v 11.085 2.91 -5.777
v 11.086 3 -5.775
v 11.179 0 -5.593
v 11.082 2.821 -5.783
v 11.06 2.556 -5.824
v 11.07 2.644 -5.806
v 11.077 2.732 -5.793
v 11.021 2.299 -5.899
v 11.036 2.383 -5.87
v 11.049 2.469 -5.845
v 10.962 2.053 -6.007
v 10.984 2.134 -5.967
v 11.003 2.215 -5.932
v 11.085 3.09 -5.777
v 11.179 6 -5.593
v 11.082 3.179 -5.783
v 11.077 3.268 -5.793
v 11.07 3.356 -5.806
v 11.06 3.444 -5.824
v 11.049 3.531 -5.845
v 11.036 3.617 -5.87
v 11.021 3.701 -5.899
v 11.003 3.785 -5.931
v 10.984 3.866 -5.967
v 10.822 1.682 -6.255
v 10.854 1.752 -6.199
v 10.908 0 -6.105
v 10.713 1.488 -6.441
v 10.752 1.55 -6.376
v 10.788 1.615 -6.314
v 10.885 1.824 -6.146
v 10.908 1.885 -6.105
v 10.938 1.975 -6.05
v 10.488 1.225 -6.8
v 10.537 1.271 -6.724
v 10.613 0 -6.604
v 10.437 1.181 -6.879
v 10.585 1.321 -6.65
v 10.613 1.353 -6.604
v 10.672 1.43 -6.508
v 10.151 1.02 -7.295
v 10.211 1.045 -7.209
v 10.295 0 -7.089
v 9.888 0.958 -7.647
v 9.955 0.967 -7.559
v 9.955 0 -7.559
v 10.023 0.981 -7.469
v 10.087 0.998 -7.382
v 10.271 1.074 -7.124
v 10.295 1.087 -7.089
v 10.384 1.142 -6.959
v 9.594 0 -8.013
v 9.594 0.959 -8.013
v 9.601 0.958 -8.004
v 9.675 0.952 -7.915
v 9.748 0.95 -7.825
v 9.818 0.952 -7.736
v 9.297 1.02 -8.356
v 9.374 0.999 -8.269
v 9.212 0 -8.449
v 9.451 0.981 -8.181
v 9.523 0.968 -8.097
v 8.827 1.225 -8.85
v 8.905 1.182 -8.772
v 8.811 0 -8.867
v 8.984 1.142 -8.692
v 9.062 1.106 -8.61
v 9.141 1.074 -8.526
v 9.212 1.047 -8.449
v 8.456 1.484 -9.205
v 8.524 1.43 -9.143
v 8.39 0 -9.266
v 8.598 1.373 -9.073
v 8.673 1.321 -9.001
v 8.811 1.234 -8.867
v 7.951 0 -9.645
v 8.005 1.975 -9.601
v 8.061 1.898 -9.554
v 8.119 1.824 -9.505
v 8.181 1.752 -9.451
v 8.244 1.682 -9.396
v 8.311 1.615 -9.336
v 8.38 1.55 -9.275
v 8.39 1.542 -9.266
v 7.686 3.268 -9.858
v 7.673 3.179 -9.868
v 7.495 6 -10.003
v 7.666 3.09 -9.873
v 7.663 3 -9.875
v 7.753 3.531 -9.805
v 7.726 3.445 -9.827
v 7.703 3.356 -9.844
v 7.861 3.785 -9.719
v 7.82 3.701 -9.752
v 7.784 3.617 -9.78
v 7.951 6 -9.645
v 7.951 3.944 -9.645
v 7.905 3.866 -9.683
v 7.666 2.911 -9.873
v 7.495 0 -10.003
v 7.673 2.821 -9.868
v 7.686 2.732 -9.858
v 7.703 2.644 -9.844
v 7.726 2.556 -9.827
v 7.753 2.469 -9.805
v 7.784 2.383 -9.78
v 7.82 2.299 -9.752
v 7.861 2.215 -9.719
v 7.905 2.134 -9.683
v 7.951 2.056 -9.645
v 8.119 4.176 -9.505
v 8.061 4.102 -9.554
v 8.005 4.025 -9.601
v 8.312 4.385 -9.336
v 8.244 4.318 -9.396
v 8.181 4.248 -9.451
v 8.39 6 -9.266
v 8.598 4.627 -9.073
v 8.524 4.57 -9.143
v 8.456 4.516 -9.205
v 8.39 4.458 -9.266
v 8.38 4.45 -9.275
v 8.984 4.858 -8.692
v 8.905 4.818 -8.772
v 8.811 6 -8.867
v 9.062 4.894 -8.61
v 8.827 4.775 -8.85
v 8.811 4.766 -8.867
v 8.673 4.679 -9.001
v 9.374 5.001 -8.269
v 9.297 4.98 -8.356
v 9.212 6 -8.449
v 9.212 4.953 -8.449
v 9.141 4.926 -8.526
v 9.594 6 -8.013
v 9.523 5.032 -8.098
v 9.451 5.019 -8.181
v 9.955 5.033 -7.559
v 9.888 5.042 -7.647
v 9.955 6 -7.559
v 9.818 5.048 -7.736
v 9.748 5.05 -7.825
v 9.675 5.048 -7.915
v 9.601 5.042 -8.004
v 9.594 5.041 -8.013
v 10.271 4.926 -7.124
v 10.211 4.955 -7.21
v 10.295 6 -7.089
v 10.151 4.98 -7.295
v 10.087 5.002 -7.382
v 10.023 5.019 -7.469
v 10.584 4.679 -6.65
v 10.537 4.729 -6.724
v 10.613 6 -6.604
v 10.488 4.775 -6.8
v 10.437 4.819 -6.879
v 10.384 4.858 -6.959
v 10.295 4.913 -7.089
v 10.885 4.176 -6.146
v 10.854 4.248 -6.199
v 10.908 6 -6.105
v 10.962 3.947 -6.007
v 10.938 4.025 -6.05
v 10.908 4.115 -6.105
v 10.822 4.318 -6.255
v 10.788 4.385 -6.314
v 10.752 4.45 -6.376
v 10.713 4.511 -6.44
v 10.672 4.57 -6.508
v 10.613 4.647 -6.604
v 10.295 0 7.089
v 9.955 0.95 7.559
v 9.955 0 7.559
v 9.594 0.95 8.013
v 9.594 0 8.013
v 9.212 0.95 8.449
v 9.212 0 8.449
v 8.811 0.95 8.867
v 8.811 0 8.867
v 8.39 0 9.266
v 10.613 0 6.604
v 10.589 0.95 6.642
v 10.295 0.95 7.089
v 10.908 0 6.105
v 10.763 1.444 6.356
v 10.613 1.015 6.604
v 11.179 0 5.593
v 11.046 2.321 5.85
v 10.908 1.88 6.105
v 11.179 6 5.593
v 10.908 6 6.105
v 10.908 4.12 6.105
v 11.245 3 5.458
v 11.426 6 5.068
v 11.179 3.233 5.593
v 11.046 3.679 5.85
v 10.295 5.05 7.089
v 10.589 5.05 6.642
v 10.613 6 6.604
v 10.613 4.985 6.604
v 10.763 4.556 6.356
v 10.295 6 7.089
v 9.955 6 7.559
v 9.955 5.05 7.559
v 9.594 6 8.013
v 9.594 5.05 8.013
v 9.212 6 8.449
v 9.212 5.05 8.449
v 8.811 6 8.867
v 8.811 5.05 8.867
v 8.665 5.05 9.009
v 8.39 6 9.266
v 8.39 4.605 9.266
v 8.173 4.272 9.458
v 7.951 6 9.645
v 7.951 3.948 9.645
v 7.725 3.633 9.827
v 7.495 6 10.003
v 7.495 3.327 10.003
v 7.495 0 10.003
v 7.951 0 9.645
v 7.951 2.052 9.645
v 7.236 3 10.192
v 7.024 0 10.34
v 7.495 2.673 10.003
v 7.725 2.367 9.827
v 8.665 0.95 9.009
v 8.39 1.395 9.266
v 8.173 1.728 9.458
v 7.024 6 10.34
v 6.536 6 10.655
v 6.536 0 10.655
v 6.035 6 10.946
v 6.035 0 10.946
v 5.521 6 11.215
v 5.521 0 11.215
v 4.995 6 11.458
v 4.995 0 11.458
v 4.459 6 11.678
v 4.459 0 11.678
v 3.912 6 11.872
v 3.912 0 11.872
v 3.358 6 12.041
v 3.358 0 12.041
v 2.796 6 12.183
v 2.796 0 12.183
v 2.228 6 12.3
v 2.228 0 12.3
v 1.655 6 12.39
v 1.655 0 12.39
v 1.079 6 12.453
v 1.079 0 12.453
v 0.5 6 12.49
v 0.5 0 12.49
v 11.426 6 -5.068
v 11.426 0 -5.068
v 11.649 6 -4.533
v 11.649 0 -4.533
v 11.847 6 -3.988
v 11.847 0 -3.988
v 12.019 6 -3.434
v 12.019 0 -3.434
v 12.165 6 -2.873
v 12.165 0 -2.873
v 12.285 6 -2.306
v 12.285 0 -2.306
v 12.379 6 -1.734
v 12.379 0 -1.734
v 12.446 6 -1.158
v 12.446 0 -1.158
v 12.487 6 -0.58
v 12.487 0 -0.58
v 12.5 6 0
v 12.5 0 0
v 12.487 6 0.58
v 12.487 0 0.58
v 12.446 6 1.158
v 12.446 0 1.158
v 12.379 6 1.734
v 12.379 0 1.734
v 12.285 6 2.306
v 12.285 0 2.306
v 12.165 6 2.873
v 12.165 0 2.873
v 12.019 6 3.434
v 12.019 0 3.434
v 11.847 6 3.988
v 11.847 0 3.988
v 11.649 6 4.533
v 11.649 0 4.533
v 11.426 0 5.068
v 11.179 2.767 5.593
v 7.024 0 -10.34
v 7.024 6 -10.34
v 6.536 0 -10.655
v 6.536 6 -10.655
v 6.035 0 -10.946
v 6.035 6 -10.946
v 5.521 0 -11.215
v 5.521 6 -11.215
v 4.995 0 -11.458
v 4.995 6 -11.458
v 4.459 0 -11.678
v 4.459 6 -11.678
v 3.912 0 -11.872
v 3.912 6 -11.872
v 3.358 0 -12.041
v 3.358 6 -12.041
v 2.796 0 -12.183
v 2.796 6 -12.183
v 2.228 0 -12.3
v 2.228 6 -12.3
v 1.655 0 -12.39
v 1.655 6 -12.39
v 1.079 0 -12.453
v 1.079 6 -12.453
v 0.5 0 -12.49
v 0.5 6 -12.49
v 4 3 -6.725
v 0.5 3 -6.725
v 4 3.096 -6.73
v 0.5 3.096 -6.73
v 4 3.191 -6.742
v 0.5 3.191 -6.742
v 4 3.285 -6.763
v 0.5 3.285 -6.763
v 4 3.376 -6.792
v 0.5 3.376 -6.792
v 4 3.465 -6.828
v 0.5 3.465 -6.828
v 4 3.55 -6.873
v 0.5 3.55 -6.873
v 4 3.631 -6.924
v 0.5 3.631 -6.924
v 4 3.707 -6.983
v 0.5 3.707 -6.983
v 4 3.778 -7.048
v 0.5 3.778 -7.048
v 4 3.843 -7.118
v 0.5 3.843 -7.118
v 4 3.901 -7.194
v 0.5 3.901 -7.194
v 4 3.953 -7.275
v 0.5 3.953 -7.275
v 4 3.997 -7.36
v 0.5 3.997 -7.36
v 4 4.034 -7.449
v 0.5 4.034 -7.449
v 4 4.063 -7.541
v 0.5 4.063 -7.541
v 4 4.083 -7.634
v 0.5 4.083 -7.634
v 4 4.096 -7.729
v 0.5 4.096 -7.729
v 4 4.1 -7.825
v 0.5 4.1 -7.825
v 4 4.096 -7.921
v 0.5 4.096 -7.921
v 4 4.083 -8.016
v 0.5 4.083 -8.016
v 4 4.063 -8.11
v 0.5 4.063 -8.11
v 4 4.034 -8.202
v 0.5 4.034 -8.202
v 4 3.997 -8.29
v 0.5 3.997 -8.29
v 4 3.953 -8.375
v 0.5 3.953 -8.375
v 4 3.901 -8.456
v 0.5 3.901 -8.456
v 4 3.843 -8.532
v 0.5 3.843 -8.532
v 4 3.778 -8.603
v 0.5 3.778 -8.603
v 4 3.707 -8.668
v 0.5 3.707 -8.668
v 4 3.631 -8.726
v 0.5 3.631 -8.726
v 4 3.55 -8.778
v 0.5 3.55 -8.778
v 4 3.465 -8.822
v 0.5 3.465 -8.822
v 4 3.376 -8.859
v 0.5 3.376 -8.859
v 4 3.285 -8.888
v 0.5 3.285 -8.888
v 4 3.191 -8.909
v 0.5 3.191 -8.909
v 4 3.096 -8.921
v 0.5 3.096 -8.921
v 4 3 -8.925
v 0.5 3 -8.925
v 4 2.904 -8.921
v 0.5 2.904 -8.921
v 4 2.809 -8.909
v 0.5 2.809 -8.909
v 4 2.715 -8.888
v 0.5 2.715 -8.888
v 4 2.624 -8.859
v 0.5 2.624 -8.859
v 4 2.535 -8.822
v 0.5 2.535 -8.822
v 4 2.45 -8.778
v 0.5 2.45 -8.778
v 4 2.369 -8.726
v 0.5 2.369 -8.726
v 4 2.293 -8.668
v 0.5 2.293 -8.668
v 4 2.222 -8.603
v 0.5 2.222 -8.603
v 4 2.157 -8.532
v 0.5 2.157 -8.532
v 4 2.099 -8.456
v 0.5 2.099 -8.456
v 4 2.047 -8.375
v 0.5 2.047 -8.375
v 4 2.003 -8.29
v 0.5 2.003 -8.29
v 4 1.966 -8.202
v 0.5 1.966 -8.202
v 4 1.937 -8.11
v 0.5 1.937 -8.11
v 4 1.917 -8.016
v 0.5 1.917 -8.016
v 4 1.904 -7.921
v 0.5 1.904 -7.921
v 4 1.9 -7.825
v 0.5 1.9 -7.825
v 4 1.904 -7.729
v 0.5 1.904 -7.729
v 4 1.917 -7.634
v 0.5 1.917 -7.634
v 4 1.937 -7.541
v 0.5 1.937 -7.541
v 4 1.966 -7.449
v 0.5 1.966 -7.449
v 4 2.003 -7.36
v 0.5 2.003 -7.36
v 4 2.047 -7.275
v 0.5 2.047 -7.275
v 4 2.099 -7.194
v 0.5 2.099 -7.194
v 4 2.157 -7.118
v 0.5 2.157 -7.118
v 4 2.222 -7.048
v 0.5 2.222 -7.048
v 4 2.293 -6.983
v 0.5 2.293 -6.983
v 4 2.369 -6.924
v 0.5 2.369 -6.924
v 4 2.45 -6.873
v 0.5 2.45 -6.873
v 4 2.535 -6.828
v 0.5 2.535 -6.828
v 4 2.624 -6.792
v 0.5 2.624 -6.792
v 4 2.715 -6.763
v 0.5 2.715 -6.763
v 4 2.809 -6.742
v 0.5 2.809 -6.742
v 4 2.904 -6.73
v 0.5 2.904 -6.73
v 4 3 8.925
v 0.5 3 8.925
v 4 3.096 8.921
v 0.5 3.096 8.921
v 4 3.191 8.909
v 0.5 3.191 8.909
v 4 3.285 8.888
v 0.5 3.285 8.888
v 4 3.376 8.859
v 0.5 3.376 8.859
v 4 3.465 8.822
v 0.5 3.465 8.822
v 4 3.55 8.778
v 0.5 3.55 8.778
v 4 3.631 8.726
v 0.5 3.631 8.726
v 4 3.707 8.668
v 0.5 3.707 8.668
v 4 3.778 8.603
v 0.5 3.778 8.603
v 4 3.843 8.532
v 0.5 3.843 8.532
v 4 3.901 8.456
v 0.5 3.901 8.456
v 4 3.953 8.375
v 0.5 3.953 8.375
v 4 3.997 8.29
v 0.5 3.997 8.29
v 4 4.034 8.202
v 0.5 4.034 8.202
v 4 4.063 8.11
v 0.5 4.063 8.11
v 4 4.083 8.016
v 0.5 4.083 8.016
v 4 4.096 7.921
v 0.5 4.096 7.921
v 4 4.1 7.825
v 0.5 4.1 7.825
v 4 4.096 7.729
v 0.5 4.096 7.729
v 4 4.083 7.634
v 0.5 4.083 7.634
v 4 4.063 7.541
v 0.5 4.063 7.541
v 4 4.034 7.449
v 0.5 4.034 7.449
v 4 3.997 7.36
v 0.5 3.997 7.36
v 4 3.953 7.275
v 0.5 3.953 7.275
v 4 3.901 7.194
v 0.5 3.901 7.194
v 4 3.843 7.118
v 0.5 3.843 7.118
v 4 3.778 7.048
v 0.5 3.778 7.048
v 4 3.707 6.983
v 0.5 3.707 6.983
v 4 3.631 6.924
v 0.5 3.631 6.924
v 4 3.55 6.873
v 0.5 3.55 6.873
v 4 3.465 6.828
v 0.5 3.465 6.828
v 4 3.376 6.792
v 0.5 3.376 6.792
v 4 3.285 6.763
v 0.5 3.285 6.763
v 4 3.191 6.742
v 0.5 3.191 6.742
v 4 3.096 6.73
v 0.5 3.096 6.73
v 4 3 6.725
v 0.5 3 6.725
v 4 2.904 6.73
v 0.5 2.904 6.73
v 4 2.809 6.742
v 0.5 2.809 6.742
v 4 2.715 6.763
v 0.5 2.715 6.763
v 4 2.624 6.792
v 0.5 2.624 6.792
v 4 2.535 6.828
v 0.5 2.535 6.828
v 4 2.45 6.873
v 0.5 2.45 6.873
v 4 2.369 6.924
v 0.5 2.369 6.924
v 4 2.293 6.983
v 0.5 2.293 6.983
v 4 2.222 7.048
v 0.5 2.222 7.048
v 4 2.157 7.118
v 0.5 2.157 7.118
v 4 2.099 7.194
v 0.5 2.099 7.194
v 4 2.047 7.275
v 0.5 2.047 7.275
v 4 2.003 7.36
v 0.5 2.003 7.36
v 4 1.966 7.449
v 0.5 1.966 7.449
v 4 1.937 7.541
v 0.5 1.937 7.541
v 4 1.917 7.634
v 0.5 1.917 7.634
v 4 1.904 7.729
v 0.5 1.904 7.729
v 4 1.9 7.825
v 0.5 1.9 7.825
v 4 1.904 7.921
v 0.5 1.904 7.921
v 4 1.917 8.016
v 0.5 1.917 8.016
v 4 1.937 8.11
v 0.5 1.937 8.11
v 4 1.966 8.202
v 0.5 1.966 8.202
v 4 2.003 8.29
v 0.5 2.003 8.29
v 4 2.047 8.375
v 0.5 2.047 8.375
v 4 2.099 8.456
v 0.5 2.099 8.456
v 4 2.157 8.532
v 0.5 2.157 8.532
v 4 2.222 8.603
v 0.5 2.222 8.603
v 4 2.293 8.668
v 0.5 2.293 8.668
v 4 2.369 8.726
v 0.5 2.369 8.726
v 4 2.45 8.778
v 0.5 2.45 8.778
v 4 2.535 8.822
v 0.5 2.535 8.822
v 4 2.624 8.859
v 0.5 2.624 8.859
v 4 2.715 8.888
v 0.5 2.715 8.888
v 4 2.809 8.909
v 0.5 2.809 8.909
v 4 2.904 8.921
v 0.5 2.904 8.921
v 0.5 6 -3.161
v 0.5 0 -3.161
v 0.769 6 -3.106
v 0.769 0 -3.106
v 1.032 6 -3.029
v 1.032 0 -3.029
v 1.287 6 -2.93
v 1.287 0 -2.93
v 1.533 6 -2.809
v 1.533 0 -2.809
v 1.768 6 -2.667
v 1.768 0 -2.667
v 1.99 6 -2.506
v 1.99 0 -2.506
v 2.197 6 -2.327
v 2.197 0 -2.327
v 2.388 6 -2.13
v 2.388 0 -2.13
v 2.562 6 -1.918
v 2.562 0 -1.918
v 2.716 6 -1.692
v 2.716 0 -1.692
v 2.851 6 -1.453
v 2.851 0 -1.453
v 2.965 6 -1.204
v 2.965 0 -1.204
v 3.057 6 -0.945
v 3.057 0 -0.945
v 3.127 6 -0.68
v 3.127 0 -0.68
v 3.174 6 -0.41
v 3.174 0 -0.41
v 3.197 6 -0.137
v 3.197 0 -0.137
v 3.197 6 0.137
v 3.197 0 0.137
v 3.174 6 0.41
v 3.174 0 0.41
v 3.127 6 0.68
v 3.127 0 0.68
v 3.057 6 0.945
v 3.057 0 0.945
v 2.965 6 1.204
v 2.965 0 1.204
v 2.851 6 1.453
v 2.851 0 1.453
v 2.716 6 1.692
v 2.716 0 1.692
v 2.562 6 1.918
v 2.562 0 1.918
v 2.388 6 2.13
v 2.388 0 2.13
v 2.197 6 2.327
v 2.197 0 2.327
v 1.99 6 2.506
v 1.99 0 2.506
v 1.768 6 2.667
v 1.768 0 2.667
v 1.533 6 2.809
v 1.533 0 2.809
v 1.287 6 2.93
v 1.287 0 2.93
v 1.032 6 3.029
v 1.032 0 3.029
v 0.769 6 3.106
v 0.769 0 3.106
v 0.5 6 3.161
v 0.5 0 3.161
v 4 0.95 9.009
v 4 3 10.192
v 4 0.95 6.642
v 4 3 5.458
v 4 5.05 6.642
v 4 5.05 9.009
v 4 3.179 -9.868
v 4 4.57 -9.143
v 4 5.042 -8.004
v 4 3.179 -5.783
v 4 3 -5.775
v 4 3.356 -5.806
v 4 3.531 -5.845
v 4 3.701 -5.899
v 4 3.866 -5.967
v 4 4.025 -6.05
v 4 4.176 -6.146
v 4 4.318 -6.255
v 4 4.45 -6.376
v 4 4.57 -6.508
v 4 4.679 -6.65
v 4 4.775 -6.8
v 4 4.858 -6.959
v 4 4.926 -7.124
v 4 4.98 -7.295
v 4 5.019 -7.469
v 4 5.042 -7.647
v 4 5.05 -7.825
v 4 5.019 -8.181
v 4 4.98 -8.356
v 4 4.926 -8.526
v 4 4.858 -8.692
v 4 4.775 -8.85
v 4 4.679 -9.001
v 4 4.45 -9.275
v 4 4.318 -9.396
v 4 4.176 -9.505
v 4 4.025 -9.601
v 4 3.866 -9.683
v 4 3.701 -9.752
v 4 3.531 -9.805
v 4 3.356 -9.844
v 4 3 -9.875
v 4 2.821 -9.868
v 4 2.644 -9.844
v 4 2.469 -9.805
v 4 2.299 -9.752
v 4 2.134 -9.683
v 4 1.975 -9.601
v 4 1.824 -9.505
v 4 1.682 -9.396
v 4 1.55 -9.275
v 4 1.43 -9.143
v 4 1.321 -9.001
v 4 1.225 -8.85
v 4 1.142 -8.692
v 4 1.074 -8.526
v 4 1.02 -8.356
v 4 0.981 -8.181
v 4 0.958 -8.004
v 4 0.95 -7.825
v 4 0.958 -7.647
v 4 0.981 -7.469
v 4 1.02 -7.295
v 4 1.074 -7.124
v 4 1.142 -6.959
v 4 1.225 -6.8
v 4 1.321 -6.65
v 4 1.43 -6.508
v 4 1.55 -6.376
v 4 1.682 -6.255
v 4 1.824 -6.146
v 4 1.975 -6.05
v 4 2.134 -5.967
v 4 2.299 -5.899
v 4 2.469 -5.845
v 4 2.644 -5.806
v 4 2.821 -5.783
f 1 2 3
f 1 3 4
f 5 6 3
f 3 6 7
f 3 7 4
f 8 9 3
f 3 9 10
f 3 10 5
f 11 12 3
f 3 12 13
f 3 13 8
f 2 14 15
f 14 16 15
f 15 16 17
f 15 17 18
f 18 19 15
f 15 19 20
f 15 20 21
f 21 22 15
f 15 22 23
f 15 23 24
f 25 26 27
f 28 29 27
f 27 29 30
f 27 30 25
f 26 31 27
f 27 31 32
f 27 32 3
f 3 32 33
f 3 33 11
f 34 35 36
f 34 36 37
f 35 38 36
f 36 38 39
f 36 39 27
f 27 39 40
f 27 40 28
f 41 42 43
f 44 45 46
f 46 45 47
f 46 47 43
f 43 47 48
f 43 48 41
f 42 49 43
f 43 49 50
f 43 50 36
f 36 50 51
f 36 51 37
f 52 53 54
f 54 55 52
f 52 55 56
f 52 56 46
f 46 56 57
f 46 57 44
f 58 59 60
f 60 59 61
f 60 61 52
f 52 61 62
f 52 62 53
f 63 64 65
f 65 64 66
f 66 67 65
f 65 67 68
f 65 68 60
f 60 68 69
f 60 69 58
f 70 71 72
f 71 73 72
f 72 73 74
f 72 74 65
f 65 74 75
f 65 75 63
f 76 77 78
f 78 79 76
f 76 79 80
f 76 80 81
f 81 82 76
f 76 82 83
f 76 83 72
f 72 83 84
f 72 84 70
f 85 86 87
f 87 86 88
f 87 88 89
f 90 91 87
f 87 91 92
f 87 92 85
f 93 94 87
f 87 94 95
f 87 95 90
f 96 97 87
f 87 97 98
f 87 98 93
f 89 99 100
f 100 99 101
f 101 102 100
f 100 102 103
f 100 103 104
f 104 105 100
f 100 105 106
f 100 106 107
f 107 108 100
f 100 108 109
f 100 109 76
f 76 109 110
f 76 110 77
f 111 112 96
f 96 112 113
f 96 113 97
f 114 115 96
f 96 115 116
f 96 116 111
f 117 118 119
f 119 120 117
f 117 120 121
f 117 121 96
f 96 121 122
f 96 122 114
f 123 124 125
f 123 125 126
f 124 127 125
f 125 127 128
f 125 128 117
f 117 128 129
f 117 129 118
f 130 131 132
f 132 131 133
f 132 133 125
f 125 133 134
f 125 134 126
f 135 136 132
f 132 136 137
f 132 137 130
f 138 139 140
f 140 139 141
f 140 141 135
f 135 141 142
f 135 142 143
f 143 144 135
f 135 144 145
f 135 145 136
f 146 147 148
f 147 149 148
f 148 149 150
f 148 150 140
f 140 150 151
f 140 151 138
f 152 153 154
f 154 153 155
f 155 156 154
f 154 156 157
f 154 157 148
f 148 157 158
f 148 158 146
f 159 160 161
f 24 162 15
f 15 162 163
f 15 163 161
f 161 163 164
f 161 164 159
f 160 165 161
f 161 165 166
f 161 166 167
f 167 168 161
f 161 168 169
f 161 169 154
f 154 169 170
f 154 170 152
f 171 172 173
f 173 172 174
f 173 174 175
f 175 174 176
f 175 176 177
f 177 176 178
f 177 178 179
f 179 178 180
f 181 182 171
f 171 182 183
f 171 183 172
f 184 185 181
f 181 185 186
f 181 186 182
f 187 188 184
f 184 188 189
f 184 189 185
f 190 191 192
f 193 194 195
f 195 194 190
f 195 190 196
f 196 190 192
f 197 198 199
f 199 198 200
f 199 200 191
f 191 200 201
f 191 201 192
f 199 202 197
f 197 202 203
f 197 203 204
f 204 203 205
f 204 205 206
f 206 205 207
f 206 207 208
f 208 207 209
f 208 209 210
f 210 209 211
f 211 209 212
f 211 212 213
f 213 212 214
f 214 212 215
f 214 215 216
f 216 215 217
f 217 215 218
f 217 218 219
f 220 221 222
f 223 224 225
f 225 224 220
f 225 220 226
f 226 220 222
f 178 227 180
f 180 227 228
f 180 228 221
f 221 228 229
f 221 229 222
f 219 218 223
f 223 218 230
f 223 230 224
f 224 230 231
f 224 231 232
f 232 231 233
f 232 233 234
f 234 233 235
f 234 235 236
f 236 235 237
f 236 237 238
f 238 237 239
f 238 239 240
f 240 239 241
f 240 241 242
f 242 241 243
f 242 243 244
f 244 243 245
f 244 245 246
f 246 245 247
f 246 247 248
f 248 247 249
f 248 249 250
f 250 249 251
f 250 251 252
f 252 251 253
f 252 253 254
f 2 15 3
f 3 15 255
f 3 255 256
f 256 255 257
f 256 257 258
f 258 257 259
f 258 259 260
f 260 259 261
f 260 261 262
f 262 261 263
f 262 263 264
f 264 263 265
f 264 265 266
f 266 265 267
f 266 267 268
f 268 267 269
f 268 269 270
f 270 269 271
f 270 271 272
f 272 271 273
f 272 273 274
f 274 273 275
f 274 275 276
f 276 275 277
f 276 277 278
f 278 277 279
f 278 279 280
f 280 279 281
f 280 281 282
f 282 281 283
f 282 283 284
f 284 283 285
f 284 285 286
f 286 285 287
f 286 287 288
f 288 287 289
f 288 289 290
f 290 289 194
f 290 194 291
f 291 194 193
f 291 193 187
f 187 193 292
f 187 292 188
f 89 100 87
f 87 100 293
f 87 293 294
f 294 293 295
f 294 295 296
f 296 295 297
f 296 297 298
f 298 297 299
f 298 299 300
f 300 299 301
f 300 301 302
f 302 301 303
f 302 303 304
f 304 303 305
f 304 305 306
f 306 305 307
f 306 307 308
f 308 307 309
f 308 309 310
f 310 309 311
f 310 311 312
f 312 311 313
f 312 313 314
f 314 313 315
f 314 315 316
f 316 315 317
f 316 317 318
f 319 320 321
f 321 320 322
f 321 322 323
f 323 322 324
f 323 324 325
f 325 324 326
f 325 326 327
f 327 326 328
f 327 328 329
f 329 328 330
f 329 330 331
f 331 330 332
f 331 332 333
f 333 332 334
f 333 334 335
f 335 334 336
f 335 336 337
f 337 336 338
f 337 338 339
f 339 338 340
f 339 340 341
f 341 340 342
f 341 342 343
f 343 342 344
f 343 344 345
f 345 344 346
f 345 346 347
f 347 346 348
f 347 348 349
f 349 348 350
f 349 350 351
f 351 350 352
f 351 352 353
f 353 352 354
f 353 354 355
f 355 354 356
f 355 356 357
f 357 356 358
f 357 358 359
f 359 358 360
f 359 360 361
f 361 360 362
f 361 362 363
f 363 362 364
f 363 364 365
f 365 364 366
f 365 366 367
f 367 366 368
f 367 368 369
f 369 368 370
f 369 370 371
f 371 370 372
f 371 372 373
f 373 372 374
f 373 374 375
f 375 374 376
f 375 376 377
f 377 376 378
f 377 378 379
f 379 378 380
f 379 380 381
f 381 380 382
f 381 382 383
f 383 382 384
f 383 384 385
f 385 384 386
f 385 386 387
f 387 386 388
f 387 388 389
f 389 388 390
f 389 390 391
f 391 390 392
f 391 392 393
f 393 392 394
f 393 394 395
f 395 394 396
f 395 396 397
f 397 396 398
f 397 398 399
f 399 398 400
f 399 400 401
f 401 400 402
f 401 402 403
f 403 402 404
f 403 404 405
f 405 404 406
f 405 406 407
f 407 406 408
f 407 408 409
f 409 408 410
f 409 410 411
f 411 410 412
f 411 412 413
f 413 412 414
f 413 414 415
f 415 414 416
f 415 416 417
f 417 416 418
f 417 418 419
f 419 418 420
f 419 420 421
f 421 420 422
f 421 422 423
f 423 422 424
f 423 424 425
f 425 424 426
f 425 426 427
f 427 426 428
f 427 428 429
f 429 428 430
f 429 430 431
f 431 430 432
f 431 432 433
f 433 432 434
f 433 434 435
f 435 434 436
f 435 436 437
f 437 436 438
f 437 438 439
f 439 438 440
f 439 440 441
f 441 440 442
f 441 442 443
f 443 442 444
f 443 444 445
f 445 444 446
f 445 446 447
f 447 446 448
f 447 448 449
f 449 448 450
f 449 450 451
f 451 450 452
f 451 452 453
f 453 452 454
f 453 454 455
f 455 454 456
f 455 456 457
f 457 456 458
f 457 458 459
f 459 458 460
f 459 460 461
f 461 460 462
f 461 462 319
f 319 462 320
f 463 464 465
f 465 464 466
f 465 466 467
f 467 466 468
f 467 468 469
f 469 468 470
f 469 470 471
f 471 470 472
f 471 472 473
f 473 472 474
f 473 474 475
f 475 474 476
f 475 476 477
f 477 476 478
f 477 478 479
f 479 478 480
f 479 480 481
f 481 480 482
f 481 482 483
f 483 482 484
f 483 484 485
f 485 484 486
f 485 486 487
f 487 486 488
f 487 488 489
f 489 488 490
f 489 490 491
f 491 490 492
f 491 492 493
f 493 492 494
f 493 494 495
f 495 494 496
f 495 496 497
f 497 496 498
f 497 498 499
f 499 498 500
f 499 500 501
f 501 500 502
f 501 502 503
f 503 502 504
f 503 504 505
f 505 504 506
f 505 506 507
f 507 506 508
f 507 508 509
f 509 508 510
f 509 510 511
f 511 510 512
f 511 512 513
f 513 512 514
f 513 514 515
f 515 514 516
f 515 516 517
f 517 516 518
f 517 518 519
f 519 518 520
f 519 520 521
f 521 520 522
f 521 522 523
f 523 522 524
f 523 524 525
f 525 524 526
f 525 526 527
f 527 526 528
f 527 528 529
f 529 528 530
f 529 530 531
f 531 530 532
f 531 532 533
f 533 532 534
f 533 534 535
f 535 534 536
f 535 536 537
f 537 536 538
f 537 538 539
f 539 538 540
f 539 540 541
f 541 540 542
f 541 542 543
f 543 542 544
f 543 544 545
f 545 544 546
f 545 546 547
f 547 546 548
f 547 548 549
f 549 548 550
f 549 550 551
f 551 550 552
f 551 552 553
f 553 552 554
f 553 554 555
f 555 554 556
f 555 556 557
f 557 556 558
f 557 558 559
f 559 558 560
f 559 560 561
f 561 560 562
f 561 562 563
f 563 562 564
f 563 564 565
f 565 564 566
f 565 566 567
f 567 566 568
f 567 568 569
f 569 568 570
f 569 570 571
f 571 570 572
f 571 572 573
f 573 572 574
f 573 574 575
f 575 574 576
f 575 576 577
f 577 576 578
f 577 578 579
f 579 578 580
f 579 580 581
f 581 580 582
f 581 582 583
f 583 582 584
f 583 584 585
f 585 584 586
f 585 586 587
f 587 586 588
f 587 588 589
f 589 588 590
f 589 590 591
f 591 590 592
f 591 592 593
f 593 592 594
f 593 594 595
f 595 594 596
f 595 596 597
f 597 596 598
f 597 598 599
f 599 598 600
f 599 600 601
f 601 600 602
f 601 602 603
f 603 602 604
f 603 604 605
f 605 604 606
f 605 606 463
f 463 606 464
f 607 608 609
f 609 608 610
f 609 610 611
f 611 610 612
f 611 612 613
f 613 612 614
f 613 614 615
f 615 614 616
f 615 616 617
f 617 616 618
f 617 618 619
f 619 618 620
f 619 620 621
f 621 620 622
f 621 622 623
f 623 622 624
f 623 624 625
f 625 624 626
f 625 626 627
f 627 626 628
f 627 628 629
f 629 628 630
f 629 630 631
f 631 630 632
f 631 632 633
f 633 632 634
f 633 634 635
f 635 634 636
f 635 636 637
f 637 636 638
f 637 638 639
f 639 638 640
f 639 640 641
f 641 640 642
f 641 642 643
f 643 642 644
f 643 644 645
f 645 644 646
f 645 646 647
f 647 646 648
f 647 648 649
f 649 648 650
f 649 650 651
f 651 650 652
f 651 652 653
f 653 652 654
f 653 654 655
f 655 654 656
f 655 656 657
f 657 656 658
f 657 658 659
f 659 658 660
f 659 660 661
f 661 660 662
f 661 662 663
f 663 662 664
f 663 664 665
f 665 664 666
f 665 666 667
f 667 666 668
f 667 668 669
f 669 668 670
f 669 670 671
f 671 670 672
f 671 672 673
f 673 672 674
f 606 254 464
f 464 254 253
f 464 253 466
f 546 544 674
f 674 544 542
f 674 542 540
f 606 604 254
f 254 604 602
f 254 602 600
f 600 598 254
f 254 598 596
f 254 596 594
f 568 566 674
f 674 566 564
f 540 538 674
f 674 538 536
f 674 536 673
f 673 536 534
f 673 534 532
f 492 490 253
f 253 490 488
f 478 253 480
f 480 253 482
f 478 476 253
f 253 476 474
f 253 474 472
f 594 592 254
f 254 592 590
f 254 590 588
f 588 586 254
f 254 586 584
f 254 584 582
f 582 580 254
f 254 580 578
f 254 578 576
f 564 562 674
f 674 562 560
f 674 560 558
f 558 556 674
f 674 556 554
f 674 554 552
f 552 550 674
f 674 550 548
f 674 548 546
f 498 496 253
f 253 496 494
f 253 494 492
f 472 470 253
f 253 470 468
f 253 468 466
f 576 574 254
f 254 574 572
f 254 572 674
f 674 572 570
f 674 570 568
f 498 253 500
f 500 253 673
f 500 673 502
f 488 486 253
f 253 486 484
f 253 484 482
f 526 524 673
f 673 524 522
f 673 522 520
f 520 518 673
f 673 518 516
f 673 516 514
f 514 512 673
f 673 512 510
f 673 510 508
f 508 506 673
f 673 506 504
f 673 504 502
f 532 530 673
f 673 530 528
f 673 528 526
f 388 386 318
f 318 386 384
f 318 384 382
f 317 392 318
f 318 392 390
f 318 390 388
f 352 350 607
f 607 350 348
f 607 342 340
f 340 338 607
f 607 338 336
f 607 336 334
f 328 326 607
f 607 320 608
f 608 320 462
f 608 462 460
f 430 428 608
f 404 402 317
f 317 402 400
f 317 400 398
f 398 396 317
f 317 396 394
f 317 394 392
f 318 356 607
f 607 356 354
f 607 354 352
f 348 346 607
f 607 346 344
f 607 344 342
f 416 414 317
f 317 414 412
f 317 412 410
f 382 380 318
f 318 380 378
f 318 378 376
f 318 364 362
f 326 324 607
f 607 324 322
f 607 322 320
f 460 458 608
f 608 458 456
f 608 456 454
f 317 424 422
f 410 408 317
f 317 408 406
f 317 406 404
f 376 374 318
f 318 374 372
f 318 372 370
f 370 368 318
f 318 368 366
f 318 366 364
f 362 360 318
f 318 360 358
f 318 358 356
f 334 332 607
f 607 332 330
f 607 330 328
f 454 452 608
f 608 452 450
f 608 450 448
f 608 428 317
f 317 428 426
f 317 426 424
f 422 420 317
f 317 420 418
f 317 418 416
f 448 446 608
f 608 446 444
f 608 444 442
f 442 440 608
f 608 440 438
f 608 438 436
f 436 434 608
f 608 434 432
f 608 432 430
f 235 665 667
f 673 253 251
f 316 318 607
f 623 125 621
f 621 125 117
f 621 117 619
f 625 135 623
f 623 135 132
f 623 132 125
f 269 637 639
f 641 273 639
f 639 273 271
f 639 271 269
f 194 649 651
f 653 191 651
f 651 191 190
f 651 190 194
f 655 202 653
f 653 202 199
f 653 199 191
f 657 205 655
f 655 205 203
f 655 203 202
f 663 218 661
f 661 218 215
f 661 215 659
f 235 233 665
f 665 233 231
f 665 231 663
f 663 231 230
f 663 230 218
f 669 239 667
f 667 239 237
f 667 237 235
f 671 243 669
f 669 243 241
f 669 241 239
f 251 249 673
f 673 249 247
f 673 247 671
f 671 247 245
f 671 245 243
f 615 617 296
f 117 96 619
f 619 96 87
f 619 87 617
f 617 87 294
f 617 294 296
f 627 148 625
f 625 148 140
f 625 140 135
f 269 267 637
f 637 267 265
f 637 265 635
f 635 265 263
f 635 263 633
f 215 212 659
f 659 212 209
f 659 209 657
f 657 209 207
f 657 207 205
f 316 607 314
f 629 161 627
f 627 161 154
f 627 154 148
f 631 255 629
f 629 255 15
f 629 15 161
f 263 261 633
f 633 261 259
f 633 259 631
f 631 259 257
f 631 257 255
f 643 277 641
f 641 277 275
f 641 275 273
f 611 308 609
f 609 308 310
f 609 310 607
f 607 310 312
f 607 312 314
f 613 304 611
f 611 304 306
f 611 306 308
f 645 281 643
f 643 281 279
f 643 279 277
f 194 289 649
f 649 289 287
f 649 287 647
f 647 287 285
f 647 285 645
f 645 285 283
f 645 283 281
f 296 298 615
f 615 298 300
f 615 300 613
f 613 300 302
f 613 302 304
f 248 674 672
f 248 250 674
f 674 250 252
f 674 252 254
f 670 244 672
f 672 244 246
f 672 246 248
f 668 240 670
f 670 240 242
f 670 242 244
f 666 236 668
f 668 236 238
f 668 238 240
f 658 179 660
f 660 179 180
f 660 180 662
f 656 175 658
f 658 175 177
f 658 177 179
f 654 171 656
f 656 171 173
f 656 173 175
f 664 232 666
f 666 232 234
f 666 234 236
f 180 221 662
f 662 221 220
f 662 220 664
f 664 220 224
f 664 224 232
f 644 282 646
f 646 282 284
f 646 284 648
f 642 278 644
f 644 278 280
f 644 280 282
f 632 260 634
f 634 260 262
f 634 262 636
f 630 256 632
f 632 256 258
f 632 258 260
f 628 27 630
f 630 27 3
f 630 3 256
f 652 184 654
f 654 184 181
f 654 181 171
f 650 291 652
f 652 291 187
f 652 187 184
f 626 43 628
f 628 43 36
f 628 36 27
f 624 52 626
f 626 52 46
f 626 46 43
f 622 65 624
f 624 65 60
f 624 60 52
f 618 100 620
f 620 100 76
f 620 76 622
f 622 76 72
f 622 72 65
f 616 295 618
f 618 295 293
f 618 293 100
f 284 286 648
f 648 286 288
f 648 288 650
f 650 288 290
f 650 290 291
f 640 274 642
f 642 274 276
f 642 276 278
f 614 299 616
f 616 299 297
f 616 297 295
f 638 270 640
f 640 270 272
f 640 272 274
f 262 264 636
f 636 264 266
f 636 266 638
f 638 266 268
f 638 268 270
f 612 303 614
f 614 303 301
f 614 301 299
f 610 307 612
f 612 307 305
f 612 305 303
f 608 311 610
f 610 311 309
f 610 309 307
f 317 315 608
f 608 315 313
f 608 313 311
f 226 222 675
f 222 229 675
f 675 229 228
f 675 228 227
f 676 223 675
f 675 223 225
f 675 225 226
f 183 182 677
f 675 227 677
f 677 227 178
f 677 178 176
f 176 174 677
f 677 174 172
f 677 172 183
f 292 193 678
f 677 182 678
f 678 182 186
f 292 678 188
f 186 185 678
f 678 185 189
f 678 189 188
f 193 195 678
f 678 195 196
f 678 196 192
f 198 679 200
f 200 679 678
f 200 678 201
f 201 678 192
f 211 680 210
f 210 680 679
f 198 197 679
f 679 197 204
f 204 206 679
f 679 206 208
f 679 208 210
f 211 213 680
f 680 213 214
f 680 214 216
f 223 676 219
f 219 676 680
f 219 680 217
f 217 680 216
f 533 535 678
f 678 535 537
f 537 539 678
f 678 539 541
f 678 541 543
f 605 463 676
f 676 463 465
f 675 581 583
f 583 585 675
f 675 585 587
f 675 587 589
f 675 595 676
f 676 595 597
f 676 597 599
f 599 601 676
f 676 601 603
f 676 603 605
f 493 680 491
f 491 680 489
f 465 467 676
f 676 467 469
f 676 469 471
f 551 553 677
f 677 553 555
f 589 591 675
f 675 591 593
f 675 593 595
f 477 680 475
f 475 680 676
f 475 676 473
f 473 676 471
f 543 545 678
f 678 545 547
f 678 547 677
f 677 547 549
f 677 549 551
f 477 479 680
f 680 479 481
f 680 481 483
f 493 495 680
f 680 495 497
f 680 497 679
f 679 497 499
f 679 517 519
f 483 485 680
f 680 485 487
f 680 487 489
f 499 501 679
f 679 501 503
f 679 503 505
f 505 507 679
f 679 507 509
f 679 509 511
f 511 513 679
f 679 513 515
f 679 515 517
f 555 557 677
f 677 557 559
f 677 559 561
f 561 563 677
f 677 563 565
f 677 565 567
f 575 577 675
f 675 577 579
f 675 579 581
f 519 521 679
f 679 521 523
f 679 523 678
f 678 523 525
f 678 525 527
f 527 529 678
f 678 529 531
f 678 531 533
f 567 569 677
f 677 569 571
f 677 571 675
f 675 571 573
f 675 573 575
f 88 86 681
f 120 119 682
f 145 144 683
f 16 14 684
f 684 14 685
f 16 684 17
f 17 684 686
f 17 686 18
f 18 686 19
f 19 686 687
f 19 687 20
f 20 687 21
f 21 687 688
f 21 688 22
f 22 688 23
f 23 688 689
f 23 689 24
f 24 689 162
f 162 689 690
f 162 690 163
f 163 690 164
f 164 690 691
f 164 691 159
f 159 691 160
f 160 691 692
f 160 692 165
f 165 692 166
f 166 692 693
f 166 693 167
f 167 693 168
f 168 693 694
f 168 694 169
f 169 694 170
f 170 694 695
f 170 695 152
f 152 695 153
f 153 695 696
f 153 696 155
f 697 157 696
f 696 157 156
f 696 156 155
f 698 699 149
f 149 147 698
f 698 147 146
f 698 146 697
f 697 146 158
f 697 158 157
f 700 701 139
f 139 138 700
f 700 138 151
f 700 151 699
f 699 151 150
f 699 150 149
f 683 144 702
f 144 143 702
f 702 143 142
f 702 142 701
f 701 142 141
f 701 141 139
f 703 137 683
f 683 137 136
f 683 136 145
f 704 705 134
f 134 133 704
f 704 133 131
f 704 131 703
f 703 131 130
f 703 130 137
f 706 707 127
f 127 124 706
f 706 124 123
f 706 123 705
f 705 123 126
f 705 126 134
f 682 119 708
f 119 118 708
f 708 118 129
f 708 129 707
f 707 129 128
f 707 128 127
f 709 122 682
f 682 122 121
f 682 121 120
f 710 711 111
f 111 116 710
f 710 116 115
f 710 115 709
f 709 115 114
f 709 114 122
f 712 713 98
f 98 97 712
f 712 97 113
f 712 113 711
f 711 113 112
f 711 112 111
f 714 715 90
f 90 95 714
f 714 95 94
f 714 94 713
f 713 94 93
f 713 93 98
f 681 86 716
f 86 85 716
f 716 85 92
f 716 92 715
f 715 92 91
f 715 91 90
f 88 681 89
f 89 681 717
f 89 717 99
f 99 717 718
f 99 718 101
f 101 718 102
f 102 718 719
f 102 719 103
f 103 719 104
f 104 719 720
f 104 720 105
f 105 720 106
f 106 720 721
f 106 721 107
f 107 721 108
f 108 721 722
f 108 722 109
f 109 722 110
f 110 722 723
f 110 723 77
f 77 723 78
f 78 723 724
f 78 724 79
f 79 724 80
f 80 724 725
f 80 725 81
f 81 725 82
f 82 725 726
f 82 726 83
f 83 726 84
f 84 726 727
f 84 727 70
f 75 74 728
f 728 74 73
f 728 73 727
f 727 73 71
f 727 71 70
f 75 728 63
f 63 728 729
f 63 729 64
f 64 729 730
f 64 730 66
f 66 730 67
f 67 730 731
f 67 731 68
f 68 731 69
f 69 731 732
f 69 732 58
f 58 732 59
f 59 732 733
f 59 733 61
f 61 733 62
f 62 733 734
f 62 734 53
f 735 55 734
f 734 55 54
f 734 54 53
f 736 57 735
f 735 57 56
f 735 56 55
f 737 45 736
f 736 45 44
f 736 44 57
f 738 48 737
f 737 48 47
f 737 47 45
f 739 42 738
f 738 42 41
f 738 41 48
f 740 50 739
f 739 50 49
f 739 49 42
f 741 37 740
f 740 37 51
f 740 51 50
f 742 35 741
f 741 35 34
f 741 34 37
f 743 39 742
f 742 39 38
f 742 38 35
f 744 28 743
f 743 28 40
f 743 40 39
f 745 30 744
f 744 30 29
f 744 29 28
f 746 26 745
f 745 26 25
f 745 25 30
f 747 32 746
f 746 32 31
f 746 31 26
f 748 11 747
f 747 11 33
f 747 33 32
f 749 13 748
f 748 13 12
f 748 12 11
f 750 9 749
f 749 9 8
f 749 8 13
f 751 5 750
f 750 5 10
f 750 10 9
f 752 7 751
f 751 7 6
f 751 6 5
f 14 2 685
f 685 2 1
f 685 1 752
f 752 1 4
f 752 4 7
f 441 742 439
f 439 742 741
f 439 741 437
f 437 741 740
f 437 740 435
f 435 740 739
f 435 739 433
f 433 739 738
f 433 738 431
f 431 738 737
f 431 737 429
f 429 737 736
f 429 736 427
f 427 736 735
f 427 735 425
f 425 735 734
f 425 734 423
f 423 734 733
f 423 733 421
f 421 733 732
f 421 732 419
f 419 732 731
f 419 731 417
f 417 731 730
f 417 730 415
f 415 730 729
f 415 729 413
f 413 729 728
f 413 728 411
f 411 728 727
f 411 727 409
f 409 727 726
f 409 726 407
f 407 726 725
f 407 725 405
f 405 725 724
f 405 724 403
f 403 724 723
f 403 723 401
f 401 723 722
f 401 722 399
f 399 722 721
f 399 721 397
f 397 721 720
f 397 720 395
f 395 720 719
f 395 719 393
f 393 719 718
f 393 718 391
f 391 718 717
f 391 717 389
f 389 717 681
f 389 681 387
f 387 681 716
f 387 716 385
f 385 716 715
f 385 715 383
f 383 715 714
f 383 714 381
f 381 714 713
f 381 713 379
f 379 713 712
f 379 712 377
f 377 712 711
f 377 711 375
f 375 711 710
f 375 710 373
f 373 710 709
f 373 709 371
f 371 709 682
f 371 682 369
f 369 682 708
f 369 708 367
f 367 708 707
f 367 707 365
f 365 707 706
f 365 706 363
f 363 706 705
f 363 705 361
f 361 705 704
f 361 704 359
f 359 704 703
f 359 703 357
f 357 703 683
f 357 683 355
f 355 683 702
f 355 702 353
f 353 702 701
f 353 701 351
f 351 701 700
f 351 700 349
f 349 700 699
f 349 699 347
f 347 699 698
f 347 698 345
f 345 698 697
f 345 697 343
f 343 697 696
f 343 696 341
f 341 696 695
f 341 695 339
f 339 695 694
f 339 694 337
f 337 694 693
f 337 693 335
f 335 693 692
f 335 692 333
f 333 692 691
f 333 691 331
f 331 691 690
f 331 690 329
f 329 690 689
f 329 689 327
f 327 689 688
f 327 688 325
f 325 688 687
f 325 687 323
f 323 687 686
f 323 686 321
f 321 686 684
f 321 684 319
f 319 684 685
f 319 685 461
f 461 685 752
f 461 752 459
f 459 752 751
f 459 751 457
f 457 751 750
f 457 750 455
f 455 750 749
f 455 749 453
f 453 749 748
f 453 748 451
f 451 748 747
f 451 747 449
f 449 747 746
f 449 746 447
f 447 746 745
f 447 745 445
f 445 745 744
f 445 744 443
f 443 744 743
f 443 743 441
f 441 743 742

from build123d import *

# Parameters (mm, degrees)
EXTRUDE_1_DEPTH     = 6
SKETCH_2_R          = 1.1
CUT_EXTRUDE_1_DEPTH = 19.661457607
CUT_EXTRUDE_START   = 4
SKETCH_3_R          = 2.05
CUT_EXTRUDE_2_DEPTH = 15.661457773


with BuildPart() as part:
    # Эскиз1 → Бобышка-Вытянуть1 (new body)
    with BuildSketch(Plane(origin=(0, 0, 0), x_dir=(1, 0, 0), z_dir=(0, 1, 0))):
        with BuildLine():
            ThreePointArc((12.5, 0), (9.013878189, 8.660254038), (0.5, 12.489995997))
            Line((0.5, 12.489995997), (0.5, 3.160696126))
            ThreePointArc((0.5, 3.160696126), (2.433105012, 2.078460969), (3.2, 0))
            ThreePointArc((3.2, 0), (2.433105012, -2.078460969), (0.5, -3.160696126))
            Line((0.5, -3.160696126), (0.5, -12.489995997))
            ThreePointArc((0.5, -12.489995997), (9.013878189, -8.660254038), (12.5, 0))
        make_face()
    extrude(amount=EXTRUDE_1_DEPTH)

    # Эскиз2 → Вырез-Вытянуть1 (cut, through all)
    with BuildSketch(Plane(origin=(0, 0, 0), x_dir=(0, 0, -1), z_dir=(1, 0, 0))):
        with Locations(Location((7.825346061, 3, 0), (0, 0, 180))):
            Circle(SKETCH_2_R)
        with Locations(Location((-7.825346061, 3, 0), (0, 0, 180))):
            Circle(SKETCH_2_R)
    extrude(amount=CUT_EXTRUDE_1_DEPTH, mode=Mode.SUBTRACT)

    # Эскиз3 → Вырез-Вытянуть2 (cut, through all)
    with BuildSketch(Plane(origin=(0, 0, 0), x_dir=(0, 0, -1), z_dir=(1, 0, 0)).offset(CUT_EXTRUDE_START)):
        with Locations(Location((7.825346061, 3, 0), (0, 0, 180))):
            Circle(SKETCH_3_R)
        Polygon((-9.008914113, 0.95), (-6.641778009, 0.95), (-5.458209958, 3), (-6.641778009, 5.05), (-9.008914113, 5.05), (-10.192482165, 3), align=None)
    extrude(amount=CUT_EXTRUDE_2_DEPTH, mode=Mode.SUBTRACT)


solid = part.part
